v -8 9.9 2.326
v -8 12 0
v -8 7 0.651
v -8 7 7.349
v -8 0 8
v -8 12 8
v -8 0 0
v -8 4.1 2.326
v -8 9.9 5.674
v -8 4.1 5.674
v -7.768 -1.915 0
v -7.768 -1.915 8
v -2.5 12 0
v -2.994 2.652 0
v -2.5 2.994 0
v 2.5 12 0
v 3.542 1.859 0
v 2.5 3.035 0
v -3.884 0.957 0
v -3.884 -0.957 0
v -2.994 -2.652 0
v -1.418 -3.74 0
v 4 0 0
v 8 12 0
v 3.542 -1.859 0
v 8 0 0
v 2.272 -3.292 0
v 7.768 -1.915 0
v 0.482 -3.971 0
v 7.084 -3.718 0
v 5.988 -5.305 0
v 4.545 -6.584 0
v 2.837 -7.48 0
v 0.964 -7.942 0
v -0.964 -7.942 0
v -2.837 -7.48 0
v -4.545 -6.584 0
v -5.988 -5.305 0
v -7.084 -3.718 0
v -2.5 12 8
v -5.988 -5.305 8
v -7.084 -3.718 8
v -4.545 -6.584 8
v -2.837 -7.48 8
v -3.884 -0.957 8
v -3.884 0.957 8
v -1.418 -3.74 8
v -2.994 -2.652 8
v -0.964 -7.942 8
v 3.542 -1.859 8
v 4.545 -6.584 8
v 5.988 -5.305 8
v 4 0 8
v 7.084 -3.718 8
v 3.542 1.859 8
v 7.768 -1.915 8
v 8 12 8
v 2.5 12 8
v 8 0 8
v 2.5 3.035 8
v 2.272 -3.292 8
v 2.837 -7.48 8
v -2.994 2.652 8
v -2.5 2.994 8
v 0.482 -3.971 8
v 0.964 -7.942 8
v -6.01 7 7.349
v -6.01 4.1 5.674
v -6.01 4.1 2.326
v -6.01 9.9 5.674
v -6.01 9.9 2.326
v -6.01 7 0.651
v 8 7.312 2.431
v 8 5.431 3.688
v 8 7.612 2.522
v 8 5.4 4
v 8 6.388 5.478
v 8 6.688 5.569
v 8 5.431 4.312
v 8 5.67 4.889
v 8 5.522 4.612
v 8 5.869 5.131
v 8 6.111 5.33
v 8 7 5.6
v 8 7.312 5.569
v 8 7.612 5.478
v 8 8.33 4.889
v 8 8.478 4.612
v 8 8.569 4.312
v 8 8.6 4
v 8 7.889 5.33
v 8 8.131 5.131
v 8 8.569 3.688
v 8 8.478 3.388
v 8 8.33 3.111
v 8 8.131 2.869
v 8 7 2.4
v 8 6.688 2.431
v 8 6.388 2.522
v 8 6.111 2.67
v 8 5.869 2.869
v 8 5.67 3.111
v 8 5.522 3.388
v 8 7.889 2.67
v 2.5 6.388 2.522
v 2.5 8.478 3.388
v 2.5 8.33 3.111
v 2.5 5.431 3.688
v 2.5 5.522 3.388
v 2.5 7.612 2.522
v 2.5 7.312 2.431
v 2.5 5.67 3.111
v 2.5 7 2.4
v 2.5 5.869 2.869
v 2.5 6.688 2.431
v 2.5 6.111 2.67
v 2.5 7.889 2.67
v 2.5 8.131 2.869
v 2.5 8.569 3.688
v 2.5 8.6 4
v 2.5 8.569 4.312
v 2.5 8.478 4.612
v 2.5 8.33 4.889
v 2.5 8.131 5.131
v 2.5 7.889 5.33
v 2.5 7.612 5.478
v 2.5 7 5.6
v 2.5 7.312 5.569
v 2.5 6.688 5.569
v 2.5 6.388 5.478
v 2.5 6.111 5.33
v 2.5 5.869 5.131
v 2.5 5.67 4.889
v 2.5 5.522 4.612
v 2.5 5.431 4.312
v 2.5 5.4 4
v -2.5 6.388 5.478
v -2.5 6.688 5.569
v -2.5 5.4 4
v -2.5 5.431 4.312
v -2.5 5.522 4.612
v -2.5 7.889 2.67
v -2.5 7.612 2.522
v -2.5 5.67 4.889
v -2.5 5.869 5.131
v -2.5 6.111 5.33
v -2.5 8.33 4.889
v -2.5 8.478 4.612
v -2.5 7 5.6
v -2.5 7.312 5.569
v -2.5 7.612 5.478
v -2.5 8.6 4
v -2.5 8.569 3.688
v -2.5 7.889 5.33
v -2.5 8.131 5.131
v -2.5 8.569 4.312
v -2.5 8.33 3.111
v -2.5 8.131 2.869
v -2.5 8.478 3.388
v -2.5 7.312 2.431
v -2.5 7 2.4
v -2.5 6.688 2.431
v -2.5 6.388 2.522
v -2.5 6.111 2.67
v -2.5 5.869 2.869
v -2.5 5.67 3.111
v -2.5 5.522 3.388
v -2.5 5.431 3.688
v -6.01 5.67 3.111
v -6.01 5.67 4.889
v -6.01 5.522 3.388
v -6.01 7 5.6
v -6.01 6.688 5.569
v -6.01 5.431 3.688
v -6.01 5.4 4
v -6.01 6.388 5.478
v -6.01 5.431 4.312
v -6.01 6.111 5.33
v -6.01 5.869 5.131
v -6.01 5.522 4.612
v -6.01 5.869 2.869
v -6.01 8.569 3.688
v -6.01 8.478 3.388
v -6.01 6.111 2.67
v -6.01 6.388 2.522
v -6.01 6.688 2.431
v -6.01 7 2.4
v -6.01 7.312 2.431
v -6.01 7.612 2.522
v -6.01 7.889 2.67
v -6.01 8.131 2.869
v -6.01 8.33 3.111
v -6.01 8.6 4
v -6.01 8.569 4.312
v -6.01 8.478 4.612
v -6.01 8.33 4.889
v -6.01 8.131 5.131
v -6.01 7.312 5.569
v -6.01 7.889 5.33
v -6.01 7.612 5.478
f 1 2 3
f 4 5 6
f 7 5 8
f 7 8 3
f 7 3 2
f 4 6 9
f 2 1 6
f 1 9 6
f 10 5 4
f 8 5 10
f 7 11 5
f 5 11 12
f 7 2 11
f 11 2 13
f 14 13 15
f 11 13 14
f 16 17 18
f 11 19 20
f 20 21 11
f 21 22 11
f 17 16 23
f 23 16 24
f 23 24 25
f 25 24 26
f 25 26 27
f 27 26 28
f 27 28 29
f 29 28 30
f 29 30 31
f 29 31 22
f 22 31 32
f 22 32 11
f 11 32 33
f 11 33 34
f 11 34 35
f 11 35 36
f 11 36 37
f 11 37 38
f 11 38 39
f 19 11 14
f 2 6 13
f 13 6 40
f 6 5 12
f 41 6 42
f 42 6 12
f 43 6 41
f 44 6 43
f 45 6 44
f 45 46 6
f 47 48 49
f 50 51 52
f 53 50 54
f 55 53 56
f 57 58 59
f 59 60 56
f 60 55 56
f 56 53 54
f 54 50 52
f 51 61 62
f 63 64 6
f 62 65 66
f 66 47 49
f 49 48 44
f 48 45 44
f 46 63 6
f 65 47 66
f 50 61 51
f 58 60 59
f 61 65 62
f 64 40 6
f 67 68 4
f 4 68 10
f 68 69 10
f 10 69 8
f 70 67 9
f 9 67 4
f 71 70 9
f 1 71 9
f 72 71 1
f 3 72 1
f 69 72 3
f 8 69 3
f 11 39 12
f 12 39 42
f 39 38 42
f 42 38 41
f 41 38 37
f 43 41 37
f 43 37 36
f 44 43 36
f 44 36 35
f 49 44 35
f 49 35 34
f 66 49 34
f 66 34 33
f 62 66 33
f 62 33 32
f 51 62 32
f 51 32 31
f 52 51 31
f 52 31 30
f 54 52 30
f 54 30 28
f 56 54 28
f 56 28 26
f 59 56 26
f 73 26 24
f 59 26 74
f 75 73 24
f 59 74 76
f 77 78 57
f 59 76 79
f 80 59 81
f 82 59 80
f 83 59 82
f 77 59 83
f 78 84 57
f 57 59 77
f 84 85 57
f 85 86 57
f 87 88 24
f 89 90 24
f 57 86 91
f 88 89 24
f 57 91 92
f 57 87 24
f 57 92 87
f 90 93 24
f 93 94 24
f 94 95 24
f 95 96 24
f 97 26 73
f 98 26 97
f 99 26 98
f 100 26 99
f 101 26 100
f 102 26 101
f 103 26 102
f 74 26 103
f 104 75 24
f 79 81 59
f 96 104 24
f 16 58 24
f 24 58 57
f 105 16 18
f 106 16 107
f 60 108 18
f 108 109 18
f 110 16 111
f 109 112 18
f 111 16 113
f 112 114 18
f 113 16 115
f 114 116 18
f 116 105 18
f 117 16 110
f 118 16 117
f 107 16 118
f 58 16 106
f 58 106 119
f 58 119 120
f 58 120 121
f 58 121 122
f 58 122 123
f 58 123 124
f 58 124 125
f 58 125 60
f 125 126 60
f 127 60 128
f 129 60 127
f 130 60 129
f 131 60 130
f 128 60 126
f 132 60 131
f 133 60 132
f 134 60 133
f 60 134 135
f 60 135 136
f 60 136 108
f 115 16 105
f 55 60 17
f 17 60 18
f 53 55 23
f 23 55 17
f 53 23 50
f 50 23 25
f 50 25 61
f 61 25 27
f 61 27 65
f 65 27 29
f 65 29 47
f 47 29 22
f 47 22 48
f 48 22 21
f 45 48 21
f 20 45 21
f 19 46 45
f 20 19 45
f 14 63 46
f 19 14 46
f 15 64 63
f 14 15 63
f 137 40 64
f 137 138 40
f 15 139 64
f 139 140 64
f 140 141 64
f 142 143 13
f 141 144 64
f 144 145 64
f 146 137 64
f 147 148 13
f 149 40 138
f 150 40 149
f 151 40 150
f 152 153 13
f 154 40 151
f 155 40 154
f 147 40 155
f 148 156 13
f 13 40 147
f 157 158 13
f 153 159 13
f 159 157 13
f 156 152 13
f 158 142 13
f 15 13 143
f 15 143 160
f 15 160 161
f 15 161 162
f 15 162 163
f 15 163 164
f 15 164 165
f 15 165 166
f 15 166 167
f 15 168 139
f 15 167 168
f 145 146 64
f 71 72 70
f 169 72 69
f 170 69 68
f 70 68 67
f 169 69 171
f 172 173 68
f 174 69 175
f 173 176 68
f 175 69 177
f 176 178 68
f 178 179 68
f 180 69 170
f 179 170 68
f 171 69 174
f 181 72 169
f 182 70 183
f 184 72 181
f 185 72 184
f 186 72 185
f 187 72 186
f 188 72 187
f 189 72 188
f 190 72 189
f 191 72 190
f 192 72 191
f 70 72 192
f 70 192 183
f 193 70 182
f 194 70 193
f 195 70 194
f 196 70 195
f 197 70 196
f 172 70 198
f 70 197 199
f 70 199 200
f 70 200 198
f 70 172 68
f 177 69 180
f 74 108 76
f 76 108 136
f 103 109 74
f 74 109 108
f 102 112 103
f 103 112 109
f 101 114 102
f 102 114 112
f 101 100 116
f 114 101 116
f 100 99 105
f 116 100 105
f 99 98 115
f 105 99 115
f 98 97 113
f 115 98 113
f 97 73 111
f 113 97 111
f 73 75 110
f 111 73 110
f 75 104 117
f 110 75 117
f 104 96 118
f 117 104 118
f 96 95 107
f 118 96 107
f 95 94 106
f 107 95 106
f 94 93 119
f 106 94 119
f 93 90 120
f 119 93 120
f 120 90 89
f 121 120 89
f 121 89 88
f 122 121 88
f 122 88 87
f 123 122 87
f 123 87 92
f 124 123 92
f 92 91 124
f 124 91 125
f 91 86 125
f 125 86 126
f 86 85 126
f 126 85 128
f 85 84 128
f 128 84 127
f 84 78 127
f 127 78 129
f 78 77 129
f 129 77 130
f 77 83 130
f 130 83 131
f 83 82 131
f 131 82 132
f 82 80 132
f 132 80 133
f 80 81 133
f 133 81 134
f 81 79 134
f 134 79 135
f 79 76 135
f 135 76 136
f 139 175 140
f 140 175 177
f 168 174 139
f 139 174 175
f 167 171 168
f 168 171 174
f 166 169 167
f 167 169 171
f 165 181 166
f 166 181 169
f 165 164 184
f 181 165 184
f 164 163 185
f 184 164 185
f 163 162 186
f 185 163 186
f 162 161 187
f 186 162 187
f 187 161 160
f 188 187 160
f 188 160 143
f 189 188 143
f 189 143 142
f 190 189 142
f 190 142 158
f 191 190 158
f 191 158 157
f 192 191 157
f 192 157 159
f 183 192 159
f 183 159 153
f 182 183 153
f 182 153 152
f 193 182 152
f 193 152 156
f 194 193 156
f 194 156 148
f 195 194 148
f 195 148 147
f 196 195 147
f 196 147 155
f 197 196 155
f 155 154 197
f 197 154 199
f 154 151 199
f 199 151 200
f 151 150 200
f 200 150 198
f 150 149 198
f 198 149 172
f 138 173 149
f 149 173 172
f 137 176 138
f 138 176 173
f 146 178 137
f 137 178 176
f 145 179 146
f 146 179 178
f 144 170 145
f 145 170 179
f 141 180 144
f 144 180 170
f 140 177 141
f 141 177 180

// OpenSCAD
bore=8;
height=8;
wall=4;
length=12;
hole_dist=7;

difference(){
	union(){
		cylinder(h=height,r=(bore/2)+wall);
		translate([0,length/2,height/2]) cube([bore+2*wall,length,height],center=true);
	}
	cylinder(h=height, r=bore/2);
	translate([0,length/2,height/2]) cube([bore-3,length,height], center=true);
	translate([0,hole_dist,height/2]) rotate([0,90,0]) cylinder(h=bore+2*wall+09.1,r=3.2/2, center=true, $fn=32);
	#translate([-bore/2-wall-0.01,hole_dist,height/2]) rotate([0,90,0]) cylinder(h=2,r=5.8/sqrt(3), $fn=6);
}
